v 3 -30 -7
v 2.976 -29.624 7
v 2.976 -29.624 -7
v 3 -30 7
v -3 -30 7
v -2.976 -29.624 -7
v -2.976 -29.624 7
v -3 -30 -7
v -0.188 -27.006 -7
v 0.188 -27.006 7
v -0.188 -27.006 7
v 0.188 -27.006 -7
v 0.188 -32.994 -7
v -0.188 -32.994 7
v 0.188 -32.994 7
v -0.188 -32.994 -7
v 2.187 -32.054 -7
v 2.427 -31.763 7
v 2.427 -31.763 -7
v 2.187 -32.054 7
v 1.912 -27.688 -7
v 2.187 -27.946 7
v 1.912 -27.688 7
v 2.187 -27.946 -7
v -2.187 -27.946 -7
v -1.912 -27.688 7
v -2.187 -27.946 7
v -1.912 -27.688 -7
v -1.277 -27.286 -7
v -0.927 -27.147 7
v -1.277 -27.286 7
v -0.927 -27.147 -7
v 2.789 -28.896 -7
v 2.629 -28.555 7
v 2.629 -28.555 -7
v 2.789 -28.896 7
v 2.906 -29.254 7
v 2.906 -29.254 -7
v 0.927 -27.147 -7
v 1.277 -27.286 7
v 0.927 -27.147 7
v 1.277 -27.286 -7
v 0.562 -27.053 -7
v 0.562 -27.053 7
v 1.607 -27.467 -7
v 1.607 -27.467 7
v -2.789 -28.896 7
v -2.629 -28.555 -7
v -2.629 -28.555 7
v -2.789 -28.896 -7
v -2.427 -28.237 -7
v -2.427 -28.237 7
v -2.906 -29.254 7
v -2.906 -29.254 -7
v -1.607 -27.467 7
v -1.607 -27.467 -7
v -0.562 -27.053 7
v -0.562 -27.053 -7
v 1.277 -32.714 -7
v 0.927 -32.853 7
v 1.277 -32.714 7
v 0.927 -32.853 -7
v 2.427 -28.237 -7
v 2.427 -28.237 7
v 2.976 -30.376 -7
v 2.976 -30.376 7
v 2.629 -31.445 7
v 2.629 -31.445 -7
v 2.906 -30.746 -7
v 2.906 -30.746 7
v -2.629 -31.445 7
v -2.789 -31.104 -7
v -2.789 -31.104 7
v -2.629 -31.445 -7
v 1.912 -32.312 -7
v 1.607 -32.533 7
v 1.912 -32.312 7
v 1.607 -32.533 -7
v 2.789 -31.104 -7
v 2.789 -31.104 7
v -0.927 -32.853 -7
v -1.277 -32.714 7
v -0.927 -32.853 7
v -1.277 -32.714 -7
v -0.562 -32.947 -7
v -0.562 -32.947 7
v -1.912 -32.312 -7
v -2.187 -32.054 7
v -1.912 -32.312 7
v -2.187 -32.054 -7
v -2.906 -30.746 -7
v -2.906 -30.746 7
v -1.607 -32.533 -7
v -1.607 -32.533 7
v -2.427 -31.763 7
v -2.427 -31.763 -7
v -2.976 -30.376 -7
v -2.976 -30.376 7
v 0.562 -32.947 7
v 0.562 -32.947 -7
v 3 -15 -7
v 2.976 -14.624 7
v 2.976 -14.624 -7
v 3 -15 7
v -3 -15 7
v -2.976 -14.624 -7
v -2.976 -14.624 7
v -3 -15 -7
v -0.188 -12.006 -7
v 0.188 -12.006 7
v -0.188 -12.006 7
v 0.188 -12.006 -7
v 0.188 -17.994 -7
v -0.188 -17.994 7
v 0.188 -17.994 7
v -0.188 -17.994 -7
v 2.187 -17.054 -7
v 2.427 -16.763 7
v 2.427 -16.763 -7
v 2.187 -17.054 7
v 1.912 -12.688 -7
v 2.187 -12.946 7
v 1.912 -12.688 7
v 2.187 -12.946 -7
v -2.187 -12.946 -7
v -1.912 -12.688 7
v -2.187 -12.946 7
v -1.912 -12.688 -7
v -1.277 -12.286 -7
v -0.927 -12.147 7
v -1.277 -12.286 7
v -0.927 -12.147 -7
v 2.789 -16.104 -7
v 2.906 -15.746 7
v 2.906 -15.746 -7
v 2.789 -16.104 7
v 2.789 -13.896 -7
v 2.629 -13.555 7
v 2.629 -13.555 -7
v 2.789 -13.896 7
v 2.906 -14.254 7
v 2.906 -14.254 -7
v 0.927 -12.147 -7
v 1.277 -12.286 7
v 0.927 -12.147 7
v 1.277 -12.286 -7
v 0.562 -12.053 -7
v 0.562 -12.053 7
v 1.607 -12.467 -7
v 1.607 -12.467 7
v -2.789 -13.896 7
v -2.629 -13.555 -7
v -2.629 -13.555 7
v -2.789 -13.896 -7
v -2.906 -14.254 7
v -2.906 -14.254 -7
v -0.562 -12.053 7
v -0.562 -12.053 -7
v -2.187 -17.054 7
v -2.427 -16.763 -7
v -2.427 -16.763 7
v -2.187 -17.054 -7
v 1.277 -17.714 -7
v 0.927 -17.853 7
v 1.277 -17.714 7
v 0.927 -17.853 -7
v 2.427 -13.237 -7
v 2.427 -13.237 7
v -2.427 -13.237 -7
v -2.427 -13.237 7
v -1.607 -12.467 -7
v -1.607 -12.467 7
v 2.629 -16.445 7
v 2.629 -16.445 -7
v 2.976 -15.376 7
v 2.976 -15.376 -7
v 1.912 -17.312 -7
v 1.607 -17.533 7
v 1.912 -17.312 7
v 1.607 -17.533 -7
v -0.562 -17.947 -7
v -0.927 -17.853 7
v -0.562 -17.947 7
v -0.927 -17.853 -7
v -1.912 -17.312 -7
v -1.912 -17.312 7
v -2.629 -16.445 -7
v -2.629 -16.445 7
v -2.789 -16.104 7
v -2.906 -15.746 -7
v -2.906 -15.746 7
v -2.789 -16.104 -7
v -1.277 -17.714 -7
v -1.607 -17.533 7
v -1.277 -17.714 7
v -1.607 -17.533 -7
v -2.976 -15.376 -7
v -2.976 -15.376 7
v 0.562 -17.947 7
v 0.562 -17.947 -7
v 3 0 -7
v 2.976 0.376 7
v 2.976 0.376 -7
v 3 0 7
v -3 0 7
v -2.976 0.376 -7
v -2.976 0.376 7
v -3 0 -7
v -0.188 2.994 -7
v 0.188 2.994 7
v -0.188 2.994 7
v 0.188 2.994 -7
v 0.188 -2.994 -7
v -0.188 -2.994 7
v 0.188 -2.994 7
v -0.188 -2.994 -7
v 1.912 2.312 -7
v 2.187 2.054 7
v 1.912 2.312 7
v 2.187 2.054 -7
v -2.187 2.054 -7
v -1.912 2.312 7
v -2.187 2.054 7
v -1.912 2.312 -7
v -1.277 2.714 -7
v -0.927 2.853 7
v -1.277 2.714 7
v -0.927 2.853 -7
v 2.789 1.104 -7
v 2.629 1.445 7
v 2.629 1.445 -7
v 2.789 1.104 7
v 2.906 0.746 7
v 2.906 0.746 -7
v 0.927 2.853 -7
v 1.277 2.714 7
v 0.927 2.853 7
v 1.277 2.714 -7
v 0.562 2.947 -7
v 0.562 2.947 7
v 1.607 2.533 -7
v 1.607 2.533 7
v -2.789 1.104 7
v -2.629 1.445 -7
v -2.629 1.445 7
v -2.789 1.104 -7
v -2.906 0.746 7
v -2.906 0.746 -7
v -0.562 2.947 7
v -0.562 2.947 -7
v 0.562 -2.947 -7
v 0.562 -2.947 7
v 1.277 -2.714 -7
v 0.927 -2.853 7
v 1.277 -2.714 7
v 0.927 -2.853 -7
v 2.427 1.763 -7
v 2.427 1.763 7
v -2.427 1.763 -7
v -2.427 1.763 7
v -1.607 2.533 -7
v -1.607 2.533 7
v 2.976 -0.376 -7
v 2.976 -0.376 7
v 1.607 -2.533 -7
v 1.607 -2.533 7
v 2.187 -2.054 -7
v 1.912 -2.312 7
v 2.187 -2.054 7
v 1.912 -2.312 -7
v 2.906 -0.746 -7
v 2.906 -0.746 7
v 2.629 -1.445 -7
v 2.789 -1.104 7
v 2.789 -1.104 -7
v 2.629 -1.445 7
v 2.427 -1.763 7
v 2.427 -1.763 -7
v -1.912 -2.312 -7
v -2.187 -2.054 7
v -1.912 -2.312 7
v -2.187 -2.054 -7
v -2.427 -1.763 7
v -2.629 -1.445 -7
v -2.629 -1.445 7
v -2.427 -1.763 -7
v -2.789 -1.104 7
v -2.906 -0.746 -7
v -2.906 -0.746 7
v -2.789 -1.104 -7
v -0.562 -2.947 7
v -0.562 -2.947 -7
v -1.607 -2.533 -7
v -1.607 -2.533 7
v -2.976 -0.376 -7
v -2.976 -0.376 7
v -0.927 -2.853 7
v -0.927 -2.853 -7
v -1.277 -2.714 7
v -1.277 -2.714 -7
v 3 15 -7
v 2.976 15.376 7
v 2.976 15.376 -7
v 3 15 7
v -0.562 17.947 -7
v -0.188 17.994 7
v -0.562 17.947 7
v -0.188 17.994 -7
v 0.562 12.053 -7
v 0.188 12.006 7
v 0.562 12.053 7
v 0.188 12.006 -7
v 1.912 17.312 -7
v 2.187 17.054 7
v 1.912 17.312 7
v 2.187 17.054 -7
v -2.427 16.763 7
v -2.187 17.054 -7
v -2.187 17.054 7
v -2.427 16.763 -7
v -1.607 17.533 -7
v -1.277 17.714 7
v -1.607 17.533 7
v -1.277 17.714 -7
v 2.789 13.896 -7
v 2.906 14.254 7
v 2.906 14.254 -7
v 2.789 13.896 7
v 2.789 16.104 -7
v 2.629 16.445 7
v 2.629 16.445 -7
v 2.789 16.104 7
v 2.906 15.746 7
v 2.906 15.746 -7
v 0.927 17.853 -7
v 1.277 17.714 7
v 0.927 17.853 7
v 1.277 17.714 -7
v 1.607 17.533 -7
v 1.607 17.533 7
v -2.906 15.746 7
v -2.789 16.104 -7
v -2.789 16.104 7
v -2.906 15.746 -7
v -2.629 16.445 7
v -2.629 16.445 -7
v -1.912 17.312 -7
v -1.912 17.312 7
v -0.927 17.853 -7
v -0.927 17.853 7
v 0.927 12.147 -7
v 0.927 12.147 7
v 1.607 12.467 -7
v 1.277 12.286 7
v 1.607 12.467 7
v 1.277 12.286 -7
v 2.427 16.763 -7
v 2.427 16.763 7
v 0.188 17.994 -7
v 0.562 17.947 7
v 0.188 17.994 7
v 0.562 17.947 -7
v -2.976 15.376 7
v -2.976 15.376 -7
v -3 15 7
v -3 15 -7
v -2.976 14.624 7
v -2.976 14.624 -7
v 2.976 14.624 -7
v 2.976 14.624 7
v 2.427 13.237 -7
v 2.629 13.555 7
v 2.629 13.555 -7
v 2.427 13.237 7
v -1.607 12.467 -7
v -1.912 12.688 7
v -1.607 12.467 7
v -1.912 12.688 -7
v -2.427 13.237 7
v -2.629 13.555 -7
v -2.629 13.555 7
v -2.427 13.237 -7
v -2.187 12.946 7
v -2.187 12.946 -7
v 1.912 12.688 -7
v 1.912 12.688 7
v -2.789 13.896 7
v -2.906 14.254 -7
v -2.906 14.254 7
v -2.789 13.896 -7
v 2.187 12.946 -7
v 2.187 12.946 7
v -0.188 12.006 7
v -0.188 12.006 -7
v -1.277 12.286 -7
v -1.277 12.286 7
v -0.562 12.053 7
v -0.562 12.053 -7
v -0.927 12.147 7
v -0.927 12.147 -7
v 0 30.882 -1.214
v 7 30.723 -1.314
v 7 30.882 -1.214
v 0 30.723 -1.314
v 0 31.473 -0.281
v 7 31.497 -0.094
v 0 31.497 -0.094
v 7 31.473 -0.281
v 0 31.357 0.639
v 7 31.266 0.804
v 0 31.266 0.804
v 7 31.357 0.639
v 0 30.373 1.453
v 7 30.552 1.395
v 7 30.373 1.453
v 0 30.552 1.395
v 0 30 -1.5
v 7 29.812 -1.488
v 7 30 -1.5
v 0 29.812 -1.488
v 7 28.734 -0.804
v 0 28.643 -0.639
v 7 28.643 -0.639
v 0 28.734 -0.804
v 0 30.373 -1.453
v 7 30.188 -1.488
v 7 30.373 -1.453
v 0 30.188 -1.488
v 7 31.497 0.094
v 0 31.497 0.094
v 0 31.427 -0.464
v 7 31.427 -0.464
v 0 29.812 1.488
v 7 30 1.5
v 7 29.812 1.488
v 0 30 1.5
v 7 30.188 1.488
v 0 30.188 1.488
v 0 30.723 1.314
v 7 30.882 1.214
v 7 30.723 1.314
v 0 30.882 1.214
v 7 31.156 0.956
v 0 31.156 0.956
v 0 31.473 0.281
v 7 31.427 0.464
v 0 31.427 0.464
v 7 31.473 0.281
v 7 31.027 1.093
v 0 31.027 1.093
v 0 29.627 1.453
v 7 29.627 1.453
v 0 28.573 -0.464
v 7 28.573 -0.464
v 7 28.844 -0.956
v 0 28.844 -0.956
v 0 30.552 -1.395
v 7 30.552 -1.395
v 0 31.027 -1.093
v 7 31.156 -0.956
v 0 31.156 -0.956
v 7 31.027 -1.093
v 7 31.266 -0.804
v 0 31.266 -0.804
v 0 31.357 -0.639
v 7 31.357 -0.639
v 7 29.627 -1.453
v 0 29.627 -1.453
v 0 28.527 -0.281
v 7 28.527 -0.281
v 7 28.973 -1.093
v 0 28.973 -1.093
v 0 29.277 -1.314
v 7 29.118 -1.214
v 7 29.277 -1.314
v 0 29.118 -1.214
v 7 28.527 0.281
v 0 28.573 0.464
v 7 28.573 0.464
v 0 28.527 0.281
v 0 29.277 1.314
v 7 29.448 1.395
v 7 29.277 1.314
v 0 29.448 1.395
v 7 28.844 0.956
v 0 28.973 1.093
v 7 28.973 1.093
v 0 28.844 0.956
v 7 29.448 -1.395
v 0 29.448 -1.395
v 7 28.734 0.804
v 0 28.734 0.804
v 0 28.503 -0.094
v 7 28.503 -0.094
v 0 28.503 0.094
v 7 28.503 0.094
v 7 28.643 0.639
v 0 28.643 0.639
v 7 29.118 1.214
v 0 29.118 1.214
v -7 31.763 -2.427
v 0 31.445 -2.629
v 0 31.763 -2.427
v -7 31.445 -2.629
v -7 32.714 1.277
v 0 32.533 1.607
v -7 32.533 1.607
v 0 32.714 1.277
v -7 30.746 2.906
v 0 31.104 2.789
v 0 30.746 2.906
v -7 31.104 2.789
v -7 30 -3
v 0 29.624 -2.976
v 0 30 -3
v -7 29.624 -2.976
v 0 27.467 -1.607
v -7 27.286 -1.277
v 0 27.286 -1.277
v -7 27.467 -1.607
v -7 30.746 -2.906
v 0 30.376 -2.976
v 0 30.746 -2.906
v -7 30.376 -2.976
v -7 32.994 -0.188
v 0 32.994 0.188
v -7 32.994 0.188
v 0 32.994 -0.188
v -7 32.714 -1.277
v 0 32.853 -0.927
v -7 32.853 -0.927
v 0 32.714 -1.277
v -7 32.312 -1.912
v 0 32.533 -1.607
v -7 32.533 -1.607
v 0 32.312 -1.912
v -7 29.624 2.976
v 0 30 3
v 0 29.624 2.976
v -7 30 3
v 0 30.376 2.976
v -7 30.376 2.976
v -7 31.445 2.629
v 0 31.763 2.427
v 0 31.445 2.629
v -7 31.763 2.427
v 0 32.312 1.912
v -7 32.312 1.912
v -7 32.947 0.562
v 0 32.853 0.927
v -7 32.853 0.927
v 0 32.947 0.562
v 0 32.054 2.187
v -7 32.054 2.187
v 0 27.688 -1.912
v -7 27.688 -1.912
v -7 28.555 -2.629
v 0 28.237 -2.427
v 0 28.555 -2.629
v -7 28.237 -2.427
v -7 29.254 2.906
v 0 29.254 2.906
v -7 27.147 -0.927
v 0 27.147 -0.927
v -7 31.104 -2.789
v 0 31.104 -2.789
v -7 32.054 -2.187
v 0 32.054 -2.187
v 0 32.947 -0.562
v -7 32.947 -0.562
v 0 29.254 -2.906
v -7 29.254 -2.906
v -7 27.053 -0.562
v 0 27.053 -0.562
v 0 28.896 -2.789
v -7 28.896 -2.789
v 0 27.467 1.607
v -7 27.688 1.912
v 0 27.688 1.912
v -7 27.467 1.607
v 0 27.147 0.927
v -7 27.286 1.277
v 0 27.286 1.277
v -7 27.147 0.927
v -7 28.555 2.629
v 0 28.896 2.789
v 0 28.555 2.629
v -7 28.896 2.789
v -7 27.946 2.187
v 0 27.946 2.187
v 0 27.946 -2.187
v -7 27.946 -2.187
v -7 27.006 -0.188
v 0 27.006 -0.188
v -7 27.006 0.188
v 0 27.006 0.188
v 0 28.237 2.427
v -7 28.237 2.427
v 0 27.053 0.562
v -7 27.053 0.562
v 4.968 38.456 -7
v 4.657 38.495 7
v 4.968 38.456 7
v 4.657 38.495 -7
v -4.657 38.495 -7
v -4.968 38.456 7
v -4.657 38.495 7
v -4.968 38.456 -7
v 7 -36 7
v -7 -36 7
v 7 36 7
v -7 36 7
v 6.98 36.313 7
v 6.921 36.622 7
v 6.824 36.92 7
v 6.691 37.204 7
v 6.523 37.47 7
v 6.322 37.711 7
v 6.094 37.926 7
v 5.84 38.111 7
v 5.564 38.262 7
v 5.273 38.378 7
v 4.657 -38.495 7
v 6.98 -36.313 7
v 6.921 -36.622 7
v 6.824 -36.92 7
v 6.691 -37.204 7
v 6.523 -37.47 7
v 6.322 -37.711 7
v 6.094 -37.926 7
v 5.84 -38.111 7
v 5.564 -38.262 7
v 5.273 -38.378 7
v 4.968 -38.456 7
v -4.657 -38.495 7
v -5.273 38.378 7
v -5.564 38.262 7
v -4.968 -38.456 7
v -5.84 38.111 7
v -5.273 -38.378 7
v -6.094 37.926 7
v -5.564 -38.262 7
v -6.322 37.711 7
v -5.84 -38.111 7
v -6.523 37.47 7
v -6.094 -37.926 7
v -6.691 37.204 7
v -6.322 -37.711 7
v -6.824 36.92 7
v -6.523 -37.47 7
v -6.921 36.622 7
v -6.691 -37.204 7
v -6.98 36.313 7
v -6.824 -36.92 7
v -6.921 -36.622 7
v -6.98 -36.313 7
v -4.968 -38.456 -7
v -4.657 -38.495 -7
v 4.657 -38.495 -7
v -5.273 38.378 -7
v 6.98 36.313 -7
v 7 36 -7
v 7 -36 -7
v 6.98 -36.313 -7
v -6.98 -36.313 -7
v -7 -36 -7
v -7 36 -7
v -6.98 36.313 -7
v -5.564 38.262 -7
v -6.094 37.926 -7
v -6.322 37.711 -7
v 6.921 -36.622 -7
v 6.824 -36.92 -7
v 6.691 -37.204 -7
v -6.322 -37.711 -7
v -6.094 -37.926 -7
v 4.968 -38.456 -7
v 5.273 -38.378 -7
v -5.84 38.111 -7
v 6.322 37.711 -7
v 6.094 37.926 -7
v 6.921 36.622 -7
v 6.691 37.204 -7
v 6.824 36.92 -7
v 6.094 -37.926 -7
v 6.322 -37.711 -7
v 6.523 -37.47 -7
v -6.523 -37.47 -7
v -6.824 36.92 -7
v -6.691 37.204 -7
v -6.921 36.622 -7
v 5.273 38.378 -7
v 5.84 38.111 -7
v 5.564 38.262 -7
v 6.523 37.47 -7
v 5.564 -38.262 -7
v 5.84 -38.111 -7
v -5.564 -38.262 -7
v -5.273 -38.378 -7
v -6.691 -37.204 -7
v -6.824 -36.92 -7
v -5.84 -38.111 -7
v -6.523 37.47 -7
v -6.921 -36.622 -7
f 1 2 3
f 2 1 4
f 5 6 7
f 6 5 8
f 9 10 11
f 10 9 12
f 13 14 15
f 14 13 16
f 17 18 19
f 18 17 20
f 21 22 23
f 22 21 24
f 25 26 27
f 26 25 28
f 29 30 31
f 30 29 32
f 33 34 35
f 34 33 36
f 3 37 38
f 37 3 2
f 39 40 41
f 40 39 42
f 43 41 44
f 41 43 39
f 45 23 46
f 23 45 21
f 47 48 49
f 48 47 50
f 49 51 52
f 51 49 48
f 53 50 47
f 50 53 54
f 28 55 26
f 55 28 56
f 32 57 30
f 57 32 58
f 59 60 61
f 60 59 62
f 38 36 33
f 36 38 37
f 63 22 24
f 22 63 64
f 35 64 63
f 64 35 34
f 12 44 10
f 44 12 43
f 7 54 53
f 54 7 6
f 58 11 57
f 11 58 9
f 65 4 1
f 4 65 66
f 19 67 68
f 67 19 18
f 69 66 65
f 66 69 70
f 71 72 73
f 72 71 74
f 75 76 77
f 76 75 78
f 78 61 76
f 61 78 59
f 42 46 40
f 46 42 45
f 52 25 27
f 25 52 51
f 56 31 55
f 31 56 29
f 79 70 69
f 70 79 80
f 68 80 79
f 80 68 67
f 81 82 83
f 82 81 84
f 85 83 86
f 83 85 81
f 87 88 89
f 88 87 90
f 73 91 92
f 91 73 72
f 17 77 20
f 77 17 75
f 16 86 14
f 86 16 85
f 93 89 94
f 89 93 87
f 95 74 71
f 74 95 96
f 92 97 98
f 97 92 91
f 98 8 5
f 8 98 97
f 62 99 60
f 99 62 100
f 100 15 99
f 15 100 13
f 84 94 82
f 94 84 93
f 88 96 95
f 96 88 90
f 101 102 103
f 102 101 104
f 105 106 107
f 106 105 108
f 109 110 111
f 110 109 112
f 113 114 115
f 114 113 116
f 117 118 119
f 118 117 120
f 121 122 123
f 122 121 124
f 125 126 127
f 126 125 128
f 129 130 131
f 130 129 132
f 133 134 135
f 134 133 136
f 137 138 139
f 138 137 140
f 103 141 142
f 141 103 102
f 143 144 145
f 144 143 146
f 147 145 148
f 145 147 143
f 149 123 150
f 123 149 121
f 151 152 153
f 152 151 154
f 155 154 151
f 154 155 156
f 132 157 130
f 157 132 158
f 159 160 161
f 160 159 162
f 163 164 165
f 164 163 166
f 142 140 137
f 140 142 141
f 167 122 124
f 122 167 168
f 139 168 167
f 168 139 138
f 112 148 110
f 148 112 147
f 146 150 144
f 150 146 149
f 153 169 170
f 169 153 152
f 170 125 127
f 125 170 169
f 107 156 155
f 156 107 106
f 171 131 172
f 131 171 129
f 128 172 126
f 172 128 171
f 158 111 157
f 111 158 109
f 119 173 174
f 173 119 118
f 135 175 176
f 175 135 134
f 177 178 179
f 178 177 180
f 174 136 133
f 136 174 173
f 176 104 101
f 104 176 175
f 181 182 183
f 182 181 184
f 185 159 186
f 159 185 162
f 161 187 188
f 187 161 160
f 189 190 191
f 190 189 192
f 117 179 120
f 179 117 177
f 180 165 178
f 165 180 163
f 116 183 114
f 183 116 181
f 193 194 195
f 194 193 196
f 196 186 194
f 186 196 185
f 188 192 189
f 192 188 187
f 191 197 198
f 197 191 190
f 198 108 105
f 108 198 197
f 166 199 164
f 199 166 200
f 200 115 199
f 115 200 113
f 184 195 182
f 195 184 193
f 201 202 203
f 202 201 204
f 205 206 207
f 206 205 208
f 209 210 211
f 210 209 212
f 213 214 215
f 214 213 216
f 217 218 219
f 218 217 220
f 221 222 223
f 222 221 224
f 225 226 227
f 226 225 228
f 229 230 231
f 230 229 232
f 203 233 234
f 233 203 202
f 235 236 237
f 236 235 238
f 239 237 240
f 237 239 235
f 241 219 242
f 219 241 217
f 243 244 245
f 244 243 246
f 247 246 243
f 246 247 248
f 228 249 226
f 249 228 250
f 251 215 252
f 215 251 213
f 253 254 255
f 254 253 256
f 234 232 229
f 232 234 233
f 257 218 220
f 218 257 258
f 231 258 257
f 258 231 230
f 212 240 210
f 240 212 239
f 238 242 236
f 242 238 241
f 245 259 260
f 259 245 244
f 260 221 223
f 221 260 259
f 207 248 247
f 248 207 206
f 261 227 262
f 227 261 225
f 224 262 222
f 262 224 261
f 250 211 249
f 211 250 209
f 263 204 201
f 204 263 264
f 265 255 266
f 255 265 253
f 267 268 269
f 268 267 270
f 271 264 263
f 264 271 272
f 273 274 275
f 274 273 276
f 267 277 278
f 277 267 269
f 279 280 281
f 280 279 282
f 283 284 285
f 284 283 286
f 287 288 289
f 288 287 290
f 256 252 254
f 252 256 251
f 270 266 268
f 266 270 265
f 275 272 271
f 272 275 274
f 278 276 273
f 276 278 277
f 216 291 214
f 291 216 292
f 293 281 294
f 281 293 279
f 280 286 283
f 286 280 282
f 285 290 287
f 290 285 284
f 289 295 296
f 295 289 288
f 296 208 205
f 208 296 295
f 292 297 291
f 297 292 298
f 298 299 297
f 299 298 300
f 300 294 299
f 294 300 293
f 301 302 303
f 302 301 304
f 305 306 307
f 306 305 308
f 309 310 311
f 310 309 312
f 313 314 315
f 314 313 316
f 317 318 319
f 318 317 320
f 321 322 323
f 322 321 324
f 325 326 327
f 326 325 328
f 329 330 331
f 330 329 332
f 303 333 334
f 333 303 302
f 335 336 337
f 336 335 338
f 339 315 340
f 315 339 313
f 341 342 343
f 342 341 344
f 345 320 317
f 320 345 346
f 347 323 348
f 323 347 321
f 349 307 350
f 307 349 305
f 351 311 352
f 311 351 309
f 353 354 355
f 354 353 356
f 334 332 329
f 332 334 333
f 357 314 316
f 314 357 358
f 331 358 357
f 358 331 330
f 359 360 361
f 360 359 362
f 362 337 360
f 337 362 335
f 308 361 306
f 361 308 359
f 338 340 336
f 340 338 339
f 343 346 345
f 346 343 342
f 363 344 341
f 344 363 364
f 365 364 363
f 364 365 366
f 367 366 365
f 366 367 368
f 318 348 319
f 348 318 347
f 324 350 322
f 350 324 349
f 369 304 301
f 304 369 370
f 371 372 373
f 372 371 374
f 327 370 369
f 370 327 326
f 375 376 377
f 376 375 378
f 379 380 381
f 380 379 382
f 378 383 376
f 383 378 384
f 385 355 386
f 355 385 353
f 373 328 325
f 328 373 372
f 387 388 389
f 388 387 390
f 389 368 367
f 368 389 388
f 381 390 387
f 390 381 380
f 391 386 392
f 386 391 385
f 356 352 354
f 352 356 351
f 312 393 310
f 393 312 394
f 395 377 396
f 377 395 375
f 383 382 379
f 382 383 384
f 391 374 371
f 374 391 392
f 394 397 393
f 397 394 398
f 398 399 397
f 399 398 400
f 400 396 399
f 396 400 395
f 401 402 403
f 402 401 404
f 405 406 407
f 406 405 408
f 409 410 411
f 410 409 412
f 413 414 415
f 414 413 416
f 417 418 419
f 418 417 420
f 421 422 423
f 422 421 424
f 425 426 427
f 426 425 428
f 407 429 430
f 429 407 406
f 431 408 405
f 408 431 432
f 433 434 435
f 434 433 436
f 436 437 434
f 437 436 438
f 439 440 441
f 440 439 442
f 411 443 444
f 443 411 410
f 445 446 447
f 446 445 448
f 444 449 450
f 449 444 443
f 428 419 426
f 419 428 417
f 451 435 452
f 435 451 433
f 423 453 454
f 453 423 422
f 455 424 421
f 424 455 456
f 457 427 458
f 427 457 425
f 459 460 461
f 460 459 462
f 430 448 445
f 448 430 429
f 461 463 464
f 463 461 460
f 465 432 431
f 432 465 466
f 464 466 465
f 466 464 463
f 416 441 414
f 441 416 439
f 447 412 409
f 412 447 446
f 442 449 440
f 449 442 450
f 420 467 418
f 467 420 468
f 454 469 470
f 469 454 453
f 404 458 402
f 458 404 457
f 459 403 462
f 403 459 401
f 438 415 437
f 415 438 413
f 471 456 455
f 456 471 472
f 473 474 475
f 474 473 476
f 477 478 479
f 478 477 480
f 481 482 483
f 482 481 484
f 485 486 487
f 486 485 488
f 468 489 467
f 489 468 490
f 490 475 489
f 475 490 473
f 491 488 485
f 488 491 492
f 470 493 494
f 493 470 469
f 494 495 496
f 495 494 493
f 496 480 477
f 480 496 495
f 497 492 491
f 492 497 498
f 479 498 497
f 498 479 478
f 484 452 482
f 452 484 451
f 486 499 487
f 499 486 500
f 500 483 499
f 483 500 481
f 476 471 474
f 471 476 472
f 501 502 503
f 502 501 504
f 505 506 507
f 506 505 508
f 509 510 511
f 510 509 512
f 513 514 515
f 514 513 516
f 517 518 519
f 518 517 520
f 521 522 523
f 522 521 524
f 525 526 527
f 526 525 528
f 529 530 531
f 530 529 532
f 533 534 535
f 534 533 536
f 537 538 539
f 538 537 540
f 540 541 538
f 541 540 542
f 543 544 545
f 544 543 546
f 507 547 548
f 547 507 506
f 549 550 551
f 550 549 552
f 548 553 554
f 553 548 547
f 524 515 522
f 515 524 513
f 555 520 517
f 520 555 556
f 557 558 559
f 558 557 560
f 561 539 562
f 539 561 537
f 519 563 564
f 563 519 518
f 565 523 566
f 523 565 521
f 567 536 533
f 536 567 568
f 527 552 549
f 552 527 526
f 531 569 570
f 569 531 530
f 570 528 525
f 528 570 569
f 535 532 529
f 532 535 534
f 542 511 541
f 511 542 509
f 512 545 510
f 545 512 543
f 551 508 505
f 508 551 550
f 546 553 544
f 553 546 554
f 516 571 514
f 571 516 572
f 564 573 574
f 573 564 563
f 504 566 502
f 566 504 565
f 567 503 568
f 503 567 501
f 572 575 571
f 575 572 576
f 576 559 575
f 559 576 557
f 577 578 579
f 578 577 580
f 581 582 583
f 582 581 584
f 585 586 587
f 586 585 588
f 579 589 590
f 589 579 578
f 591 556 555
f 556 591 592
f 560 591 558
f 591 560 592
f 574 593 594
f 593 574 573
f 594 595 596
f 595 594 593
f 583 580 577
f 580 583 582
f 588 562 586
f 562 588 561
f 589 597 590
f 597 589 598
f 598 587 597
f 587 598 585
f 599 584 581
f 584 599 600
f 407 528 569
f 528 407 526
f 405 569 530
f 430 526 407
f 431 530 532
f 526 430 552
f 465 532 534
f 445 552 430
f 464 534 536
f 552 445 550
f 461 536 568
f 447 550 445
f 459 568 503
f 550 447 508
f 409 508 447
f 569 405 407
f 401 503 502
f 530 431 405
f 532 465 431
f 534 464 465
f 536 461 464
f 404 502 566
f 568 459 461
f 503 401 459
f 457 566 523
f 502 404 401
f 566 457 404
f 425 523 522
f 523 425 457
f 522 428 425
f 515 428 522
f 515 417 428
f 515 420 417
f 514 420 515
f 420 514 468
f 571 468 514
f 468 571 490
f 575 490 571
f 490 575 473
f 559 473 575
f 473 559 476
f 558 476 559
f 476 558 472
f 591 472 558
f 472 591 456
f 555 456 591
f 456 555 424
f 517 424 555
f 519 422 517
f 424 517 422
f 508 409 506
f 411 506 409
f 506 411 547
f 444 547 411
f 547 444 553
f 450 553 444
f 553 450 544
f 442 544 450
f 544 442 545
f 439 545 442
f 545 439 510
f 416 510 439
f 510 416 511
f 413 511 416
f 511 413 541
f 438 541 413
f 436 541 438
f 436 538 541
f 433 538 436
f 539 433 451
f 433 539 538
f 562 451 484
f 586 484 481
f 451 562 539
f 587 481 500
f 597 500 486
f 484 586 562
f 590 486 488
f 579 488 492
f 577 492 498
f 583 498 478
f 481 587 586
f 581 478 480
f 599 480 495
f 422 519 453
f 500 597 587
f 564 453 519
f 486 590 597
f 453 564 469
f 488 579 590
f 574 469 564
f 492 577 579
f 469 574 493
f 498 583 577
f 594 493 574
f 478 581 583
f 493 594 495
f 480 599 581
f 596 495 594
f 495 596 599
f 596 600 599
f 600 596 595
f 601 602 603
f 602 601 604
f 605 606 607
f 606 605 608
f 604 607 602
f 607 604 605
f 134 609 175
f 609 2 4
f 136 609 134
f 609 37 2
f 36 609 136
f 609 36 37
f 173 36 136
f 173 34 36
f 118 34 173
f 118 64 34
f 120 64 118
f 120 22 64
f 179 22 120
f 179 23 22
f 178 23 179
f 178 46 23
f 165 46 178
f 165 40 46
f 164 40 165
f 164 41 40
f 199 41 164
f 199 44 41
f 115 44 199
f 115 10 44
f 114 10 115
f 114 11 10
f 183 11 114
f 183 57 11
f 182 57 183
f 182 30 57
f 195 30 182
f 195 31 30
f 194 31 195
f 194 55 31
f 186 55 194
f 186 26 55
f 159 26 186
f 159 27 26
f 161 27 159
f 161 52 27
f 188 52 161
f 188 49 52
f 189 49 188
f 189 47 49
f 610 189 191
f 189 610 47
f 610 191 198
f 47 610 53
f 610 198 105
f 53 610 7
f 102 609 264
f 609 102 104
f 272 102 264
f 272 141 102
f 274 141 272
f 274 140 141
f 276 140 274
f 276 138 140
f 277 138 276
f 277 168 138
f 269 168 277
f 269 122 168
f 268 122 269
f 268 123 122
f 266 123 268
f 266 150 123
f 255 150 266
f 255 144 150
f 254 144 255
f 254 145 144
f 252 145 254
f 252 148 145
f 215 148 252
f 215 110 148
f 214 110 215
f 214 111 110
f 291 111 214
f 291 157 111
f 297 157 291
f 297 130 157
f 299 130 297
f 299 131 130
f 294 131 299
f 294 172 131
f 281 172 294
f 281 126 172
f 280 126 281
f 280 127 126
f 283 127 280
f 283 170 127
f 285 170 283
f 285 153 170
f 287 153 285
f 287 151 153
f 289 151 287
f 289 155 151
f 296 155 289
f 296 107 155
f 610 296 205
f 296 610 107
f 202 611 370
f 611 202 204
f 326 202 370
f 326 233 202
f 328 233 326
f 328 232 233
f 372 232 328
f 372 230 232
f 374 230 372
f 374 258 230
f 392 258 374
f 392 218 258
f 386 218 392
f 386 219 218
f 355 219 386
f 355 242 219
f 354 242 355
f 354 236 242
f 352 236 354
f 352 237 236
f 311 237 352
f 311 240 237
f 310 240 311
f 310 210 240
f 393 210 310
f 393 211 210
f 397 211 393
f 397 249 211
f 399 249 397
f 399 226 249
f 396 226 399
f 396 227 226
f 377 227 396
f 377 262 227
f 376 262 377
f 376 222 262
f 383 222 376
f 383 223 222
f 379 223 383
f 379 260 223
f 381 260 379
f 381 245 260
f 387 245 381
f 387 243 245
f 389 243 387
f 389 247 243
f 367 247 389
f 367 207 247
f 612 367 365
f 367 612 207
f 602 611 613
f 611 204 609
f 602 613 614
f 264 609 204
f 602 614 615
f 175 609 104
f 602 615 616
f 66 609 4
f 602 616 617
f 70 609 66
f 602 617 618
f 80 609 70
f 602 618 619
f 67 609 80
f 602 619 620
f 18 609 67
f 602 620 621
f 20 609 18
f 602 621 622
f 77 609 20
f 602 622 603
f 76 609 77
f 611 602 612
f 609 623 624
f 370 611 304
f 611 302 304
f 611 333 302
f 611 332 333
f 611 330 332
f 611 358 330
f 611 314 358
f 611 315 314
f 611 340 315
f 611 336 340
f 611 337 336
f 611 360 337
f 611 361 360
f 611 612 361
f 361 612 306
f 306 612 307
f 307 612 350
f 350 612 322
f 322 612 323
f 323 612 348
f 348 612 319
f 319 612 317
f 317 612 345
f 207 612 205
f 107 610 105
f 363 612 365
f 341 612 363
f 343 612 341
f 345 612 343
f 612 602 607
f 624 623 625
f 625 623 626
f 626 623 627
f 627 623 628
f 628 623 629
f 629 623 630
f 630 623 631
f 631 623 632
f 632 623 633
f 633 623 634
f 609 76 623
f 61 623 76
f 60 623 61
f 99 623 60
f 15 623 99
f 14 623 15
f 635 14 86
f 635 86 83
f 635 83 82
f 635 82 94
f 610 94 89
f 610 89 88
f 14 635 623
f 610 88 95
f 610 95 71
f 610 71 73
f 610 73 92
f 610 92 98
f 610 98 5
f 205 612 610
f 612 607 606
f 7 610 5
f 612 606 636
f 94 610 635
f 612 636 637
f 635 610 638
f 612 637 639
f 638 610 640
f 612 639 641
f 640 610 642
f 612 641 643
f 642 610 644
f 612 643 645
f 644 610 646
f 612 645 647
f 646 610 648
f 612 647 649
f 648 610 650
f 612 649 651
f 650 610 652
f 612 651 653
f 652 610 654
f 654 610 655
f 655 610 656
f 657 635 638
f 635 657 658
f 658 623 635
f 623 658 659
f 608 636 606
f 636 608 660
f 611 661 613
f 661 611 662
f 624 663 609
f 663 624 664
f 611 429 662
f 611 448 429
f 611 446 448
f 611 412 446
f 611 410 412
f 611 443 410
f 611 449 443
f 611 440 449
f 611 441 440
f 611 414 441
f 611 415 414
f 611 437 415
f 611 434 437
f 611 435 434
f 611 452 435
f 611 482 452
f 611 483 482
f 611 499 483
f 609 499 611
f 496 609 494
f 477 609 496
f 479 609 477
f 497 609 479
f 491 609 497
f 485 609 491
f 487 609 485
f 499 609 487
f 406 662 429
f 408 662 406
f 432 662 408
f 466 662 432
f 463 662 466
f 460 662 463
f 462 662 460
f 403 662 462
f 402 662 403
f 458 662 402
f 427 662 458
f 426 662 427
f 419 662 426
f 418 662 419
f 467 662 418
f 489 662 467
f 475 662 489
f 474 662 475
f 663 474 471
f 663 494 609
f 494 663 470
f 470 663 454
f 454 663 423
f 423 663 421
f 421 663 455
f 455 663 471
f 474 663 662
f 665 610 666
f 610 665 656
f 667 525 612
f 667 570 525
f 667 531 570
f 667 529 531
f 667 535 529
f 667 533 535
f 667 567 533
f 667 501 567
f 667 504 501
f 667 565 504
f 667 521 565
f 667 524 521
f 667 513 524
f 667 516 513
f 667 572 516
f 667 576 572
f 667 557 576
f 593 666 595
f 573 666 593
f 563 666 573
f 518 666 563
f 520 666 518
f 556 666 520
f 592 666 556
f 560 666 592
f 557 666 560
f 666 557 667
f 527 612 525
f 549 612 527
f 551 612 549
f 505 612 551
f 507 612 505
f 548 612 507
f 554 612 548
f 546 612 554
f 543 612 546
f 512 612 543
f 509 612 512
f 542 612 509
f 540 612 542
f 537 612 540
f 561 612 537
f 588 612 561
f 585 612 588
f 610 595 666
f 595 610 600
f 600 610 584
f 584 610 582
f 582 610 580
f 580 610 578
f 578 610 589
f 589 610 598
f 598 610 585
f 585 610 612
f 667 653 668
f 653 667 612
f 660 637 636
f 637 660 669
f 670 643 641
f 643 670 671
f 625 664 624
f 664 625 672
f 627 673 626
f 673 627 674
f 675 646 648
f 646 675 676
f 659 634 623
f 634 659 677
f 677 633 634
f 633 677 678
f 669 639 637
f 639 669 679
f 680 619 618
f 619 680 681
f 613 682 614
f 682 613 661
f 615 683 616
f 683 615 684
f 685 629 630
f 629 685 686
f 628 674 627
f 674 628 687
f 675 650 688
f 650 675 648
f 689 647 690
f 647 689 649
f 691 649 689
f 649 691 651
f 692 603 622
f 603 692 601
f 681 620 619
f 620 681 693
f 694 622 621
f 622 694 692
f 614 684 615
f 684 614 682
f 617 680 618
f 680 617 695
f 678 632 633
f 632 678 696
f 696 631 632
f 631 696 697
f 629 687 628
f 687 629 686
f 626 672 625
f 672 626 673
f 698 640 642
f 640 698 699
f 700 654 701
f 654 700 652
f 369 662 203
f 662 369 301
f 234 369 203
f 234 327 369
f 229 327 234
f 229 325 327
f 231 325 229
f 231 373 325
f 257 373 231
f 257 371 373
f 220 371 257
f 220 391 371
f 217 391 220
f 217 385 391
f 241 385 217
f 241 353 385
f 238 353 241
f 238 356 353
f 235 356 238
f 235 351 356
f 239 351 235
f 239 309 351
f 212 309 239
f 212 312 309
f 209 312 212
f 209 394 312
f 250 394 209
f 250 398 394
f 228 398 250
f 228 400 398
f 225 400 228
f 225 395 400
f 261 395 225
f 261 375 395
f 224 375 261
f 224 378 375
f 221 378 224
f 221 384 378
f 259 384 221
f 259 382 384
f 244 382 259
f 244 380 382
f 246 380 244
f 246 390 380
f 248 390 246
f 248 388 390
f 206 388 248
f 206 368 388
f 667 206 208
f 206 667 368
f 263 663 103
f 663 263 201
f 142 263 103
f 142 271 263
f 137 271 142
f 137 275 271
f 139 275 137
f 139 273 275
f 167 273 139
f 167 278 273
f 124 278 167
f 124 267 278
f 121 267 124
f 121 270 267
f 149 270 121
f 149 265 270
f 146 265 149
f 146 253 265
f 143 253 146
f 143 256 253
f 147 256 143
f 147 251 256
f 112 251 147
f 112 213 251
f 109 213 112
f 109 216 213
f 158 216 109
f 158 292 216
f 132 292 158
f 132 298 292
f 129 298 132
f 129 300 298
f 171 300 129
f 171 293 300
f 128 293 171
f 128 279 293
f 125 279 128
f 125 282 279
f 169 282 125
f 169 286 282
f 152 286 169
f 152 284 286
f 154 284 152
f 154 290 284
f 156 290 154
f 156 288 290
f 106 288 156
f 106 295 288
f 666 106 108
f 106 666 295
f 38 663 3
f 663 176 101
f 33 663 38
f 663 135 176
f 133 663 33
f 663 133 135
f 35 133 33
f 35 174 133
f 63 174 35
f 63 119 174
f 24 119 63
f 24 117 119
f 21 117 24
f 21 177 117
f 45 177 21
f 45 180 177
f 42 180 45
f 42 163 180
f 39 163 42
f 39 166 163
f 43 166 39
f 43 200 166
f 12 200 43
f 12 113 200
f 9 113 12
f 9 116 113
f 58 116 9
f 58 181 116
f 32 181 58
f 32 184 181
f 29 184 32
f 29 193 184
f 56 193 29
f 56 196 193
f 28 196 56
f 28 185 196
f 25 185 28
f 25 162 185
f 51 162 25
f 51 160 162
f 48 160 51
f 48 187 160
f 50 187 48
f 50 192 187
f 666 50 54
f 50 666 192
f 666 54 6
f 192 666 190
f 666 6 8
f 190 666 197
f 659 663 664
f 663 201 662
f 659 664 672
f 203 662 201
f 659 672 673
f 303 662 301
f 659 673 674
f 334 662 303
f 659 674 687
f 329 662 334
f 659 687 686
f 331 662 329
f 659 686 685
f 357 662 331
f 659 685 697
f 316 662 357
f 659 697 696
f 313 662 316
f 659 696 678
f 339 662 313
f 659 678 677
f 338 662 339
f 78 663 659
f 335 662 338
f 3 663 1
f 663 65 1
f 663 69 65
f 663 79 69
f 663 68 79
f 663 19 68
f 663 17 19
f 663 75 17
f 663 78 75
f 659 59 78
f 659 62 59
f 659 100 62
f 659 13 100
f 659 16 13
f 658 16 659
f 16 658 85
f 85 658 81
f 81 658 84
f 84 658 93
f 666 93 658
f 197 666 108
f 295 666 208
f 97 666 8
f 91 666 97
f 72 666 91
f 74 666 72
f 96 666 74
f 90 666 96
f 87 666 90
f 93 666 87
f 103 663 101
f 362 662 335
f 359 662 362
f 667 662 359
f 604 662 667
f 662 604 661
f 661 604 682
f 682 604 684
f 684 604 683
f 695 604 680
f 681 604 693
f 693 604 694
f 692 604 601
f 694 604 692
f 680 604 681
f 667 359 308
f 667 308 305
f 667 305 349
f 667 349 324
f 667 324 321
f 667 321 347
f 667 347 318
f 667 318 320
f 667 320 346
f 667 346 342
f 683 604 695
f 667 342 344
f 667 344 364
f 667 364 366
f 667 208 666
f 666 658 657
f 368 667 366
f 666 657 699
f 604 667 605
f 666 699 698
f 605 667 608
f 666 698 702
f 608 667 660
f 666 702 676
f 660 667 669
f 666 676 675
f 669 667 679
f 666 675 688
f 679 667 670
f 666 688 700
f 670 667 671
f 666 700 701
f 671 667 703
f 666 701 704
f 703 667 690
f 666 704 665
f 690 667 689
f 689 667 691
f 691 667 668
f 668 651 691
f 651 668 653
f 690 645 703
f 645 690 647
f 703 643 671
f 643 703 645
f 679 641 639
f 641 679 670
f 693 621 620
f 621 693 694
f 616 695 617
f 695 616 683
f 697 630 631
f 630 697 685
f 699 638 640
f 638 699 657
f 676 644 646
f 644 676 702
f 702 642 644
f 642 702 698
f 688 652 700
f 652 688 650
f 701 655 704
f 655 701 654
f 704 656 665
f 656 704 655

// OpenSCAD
$fn = 50;


difference() {
	union() {
		translate(v = [0, 0, -7.0000000000]) {
			hull() {
				translate(v = [-4.5000000000, 36.0000000000, 0]) {
					cylinder(h = 14, r = 2.5000000000);
				}
				translate(v = [4.5000000000, 36.0000000000, 0]) {
					cylinder(h = 14, r = 2.5000000000);
				}
				translate(v = [-4.5000000000, -36.0000000000, 0]) {
					cylinder(h = 14, r = 2.5000000000);
				}
				translate(v = [4.5000000000, -36.0000000000, 0]) {
					cylinder(h = 14, r = 2.5000000000);
				}
			}
		}
	}
	union() {
		translate(v = [0.0000000000, -30.0000000000, -100.0000000000]) {
			cylinder(h = 200, r = 3.0000000000);
		}
		translate(v = [0.0000000000, -15.0000000000, -100.0000000000]) {
			cylinder(h = 200, r = 3.0000000000);
		}
		translate(v = [0.0000000000, 0.0000000000, -100.0000000000]) {
			cylinder(h = 200, r = 3.0000000000);
		}
		translate(v = [0.0000000000, 15.0000000000, -100.0000000000]) {
			cylinder(h = 200, r = 3.0000000000);
		}
		translate(v = [-50, 30, 0]) {
			rotate(a = [0, 90, 0]) {
				cylinder(h = 100, r = 1.5000000000);
			}
		}
		translate(v = [-100, 30, 0]) {
			rotate(a = [0, 90, 0]) {
				cylinder(h = 100, r = 3.0000000000);
			}
		}
	}
}
